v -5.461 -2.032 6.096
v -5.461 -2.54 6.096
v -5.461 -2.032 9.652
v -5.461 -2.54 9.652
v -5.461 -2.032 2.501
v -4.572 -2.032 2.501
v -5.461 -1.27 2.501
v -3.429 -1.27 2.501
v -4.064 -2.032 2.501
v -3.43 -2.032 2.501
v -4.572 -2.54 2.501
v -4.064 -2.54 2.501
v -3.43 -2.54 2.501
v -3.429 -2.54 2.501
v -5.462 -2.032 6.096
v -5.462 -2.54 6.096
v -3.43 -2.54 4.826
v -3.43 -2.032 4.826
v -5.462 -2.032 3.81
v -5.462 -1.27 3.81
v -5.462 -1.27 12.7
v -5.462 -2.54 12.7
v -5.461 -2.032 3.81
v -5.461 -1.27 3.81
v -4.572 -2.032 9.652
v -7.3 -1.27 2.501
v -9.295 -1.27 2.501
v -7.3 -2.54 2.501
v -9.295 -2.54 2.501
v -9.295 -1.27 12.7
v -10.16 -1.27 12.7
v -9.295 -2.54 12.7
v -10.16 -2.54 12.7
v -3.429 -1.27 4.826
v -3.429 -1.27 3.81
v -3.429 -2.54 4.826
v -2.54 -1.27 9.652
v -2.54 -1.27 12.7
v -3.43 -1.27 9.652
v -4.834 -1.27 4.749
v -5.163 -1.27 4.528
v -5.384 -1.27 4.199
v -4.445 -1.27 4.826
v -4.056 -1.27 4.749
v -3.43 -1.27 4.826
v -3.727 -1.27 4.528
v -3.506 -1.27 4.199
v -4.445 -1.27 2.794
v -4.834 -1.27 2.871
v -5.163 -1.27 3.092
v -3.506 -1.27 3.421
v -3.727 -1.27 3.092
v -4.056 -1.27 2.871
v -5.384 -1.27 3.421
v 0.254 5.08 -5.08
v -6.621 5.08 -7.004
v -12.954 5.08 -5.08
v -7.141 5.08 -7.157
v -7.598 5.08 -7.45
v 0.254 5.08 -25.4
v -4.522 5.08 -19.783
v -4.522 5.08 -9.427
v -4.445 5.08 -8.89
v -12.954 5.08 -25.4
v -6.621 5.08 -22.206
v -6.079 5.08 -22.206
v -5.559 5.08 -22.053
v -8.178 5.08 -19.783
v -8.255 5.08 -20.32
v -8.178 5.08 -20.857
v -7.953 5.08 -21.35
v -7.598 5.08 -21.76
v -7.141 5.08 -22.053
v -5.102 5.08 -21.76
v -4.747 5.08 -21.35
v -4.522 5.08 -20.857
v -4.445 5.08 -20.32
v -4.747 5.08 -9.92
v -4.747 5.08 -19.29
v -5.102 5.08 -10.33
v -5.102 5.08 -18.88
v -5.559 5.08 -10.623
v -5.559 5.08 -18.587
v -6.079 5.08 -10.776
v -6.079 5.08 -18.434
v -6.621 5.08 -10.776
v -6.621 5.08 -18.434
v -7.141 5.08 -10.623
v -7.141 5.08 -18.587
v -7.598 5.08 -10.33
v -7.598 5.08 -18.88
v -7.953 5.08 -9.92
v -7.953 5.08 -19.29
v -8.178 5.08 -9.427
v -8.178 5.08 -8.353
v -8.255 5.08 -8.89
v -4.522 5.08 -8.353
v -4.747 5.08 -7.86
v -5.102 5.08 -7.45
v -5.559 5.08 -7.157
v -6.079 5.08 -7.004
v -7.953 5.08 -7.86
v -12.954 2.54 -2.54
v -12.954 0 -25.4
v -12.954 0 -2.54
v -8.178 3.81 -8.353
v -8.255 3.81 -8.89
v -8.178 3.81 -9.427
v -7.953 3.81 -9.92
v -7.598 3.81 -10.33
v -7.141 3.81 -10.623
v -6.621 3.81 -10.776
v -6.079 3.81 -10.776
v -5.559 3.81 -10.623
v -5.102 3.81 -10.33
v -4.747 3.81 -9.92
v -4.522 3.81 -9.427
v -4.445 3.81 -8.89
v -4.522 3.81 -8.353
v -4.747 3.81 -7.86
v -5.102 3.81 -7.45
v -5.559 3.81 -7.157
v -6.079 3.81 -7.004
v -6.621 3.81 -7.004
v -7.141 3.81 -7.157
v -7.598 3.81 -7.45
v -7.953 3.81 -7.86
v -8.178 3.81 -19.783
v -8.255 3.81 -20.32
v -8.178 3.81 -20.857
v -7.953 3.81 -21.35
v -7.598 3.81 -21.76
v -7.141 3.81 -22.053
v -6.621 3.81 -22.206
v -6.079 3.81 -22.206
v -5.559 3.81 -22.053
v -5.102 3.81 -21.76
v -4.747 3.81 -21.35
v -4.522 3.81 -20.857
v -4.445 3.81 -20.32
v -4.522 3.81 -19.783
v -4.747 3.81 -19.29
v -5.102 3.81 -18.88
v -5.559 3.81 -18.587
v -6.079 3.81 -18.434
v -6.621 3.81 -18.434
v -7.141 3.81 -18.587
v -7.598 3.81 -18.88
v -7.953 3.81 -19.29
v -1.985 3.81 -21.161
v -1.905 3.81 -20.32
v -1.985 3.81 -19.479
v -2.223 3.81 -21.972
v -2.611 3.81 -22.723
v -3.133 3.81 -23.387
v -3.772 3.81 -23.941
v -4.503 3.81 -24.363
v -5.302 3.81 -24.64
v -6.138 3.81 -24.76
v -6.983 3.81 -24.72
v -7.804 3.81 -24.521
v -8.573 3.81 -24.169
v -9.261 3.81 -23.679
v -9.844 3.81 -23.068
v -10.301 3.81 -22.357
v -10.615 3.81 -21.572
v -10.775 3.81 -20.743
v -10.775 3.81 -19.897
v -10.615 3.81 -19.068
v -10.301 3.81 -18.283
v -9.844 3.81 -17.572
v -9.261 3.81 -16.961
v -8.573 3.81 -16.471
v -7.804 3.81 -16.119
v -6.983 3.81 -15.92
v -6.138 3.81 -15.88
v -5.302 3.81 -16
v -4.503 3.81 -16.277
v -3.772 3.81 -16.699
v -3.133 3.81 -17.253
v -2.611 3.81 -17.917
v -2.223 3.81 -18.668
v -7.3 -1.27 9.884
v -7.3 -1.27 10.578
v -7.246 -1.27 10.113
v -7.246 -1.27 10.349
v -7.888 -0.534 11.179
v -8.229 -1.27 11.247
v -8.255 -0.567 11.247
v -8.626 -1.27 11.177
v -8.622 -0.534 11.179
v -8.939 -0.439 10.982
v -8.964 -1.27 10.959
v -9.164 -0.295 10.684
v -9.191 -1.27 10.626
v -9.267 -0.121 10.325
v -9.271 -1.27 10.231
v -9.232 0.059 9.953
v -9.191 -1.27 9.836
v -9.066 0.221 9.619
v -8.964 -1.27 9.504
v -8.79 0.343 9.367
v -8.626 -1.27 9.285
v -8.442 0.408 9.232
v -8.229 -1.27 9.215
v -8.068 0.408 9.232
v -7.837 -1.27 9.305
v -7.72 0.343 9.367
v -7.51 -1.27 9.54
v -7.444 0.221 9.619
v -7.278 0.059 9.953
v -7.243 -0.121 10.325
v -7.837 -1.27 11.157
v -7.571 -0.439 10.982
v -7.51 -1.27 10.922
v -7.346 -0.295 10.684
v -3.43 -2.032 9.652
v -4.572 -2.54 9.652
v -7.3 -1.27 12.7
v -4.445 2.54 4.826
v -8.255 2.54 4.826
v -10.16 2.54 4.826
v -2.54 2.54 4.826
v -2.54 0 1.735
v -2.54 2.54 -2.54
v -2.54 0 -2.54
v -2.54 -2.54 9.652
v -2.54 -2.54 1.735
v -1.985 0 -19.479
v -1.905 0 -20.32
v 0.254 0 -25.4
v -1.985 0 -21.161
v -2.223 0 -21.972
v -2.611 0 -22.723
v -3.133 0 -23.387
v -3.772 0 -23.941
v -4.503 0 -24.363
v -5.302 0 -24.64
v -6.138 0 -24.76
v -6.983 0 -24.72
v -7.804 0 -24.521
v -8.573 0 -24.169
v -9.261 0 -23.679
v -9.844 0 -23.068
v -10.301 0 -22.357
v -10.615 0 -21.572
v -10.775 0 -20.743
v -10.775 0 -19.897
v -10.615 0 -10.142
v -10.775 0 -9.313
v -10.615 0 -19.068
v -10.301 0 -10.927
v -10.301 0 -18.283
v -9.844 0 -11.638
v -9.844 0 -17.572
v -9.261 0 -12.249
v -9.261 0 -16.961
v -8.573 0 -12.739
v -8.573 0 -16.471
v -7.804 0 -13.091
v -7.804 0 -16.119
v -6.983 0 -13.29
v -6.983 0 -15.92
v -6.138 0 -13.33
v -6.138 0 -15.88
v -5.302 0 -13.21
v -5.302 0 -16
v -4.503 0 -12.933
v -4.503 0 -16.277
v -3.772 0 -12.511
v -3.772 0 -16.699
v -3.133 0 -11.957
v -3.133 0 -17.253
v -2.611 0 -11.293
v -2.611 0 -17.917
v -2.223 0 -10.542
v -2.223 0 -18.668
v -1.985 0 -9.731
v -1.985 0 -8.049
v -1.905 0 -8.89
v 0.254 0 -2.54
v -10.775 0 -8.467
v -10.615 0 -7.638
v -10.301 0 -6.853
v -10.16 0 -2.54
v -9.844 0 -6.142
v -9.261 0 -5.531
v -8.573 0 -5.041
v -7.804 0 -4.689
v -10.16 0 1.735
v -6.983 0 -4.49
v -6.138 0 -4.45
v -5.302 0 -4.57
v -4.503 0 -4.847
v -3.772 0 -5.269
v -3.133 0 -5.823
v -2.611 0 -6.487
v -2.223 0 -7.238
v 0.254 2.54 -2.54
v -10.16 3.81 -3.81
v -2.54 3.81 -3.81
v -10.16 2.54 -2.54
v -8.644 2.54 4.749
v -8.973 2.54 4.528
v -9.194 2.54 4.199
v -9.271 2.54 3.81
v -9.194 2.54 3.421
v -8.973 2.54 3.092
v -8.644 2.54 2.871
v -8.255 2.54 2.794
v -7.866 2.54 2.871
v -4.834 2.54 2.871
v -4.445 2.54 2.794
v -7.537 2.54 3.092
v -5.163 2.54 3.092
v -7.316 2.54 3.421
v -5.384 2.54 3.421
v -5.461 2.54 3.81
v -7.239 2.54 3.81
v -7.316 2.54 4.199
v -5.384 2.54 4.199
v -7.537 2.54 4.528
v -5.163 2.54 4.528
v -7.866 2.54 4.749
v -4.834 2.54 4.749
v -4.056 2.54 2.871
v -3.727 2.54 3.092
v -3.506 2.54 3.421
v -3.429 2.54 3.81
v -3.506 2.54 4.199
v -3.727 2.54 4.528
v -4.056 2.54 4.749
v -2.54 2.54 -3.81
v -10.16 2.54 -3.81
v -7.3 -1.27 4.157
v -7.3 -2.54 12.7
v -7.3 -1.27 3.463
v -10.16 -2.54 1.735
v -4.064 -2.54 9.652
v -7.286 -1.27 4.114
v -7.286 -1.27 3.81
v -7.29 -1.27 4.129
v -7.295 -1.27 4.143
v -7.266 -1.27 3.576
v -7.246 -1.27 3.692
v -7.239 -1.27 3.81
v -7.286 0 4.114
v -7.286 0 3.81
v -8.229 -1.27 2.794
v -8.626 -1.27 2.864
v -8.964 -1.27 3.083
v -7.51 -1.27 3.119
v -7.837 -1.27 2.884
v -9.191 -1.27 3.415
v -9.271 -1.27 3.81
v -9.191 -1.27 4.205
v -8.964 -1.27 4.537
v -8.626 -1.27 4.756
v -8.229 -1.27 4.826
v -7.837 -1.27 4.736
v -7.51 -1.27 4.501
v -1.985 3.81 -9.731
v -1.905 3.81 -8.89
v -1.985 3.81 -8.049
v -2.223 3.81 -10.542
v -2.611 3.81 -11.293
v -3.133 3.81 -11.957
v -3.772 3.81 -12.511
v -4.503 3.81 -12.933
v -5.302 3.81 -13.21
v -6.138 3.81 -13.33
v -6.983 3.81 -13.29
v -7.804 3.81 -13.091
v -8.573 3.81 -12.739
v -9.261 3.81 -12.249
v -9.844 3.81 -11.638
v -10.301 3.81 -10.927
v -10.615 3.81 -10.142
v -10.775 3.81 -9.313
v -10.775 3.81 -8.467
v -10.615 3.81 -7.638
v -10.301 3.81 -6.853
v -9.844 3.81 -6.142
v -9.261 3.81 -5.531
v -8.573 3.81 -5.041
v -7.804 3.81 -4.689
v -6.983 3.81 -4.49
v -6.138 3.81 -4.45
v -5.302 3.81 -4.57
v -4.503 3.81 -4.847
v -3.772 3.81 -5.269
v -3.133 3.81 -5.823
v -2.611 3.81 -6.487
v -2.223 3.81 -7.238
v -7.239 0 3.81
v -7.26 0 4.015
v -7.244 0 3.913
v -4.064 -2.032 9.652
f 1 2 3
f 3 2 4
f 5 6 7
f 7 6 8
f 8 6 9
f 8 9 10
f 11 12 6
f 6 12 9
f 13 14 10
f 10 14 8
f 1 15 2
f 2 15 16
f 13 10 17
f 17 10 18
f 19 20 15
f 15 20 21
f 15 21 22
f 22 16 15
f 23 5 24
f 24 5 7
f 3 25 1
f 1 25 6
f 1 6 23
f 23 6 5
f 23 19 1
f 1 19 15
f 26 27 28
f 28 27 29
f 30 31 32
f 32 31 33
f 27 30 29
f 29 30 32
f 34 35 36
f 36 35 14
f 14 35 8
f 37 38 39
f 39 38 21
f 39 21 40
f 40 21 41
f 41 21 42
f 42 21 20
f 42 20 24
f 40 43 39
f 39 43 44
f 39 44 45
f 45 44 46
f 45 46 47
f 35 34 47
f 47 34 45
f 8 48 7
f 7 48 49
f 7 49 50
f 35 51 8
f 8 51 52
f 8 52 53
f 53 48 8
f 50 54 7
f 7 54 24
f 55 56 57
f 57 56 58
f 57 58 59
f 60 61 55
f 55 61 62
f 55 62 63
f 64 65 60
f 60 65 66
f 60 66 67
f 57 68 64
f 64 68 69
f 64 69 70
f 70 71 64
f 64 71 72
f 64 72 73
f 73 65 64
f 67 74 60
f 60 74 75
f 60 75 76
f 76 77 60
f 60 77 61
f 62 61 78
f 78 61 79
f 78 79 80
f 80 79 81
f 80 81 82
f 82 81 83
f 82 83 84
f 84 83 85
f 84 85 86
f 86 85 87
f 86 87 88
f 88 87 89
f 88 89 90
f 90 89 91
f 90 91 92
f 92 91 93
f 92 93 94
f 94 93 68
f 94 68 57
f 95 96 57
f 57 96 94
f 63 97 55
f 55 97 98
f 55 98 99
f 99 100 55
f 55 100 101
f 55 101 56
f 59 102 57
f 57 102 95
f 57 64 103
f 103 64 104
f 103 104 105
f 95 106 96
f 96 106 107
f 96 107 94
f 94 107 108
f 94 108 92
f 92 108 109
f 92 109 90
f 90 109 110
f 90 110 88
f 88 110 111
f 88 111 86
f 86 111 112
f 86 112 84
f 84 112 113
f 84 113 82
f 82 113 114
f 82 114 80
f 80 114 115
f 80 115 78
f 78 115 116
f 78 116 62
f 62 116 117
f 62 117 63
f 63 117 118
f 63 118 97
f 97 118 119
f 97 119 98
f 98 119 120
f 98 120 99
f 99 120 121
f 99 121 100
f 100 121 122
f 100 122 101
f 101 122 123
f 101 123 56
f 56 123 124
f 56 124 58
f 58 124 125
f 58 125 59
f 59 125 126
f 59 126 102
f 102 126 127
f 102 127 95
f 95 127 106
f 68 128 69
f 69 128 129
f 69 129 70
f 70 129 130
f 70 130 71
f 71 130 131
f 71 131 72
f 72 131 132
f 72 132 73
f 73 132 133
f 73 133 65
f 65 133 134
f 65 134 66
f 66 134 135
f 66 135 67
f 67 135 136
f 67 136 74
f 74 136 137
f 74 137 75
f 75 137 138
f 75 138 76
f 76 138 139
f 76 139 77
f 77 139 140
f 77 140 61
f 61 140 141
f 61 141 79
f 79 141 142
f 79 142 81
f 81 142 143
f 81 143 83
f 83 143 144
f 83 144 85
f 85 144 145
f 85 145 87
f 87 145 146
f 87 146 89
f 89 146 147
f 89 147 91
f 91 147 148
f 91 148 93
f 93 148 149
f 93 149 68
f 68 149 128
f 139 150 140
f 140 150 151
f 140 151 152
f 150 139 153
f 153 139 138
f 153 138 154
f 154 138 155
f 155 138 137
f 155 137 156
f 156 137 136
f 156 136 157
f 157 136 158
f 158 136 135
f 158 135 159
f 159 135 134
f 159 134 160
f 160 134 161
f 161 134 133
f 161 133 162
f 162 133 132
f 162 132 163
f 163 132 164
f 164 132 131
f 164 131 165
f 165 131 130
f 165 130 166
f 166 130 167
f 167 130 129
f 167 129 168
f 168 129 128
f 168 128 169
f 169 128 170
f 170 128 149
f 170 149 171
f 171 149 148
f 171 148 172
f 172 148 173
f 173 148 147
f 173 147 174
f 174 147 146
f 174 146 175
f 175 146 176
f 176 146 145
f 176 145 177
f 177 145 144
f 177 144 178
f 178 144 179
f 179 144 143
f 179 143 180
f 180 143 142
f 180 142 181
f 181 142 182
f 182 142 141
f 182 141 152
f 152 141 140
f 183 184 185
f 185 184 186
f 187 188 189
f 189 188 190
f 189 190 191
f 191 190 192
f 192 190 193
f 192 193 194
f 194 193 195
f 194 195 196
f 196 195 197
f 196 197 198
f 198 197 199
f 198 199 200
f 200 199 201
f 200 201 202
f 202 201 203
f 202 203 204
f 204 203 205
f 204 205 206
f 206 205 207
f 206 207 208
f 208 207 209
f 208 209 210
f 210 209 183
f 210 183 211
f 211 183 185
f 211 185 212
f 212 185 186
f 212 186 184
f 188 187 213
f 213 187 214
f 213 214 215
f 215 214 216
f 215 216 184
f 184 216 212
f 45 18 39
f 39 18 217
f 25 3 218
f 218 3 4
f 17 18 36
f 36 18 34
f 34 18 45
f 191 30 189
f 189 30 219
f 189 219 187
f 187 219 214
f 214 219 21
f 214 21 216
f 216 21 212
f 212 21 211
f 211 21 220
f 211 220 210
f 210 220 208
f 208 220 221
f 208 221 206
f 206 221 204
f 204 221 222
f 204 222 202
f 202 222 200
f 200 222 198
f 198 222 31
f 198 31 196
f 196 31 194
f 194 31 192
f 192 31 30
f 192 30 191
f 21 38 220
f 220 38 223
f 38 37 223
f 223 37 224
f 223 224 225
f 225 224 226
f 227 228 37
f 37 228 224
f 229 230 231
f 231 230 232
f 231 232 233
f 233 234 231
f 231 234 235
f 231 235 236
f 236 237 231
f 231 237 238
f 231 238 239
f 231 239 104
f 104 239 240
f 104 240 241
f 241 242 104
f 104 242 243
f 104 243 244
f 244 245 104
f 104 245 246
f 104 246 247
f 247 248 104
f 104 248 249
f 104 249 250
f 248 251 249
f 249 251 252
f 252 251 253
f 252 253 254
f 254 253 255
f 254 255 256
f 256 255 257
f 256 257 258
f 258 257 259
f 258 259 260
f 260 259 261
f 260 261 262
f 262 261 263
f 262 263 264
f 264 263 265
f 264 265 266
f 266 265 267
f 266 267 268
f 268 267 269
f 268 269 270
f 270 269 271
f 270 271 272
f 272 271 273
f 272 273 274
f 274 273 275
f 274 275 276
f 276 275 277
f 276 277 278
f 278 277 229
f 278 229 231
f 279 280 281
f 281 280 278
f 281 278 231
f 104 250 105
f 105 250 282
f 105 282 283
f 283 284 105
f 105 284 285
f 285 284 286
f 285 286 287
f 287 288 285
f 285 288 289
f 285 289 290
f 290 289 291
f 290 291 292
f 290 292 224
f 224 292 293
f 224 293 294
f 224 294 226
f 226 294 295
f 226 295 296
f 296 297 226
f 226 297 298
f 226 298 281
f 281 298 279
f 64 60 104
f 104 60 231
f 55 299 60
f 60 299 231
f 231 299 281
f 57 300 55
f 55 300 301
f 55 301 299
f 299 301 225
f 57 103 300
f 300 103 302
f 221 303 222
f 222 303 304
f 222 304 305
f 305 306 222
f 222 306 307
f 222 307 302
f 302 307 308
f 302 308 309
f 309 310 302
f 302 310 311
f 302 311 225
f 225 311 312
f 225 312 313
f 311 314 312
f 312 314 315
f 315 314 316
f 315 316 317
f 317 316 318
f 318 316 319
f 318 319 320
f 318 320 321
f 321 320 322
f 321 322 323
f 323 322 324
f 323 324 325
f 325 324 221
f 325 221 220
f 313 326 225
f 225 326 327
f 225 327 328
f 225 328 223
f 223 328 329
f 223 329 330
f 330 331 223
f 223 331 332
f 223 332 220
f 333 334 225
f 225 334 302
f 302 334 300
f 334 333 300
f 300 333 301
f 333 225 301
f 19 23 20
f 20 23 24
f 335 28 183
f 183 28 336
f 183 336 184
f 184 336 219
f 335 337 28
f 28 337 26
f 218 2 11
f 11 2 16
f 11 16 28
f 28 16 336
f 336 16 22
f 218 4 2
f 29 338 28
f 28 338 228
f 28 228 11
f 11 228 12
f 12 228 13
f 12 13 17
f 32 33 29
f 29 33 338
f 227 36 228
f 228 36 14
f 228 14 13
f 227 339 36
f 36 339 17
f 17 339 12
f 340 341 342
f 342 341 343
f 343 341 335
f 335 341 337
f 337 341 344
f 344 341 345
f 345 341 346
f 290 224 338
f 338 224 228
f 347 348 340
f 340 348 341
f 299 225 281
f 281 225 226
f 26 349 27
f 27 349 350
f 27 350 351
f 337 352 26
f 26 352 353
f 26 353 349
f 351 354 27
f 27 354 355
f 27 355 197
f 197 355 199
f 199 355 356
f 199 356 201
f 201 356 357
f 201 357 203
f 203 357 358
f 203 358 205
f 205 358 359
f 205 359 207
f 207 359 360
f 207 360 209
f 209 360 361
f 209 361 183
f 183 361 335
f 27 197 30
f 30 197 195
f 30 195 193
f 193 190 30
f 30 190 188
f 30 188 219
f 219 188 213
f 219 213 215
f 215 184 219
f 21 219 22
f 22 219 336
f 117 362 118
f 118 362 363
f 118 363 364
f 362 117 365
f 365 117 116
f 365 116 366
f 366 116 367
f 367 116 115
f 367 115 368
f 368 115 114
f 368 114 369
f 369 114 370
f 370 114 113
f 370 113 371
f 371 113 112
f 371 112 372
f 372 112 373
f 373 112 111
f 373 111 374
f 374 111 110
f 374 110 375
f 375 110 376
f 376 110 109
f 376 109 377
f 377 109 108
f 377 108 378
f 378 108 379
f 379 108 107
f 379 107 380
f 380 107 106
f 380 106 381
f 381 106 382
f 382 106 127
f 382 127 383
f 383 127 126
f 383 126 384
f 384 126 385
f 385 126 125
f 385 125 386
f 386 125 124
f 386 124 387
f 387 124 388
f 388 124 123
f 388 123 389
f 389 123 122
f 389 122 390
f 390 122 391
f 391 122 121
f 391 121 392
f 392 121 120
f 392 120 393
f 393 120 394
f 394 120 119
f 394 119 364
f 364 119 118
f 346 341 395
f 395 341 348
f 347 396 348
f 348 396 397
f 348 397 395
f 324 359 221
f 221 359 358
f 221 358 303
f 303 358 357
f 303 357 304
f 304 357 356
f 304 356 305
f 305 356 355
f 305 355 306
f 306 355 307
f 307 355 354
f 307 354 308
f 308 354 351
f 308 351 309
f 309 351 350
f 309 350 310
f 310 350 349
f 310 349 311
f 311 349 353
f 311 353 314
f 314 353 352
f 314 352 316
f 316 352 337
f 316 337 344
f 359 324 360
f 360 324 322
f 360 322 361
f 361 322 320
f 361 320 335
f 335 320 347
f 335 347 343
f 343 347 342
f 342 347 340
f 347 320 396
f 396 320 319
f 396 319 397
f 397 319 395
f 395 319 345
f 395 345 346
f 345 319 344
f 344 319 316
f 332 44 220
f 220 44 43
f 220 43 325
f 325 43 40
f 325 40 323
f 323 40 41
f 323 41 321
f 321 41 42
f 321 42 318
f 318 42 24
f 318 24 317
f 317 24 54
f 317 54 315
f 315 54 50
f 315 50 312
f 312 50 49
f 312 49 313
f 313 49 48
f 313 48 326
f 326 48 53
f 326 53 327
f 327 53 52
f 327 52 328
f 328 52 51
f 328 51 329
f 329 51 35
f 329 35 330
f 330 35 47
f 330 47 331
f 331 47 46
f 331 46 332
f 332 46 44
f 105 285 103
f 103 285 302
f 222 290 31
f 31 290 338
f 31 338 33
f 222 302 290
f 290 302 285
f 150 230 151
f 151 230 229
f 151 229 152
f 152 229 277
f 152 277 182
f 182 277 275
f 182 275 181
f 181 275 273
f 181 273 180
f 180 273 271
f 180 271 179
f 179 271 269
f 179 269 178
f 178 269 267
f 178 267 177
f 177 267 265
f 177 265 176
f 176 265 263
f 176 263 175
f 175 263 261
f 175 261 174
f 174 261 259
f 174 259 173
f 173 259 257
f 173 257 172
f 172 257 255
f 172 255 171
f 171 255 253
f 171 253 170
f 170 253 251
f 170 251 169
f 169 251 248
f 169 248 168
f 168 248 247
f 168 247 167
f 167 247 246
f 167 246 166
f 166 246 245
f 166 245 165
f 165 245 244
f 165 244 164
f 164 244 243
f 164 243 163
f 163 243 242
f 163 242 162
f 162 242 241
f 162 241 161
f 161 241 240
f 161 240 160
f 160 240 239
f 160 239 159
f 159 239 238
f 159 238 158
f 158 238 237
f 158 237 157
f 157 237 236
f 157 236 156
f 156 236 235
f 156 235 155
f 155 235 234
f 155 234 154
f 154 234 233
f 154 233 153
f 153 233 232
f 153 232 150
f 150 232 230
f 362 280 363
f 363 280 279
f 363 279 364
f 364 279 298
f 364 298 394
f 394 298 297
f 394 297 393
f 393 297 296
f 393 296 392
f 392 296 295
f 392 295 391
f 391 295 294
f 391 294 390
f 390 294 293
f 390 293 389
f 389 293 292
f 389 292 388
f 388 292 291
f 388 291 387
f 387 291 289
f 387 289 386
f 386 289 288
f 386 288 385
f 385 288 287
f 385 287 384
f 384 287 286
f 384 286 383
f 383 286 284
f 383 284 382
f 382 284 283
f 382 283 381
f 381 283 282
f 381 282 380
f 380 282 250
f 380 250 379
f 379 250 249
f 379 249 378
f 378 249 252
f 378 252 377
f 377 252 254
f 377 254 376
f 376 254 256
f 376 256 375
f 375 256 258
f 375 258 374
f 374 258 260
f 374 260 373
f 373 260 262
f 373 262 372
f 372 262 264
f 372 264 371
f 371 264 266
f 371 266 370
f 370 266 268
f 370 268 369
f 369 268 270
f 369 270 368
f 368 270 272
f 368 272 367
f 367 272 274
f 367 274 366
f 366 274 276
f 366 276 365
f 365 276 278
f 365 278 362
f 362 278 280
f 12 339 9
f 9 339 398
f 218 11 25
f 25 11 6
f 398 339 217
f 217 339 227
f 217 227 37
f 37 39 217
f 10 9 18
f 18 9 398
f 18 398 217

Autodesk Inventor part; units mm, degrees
ref_plane "YZ Plane" through (0, 0, 0) normal (1, 0, 0) x (0, 1, 0)
ref_plane "XZ Plane" through (0, 0, 0) normal (0, 1, 0) x (-1, 0, 0)
ref_plane "XY Plane" through (0, 0, 0) normal (0, 0, 1) x (1, 0, 0)
sketch "Sketch1" plane through (0, 0, 0) normal (0, 1, 0) x (-1, 0, 0)
  line L0 (0, 0) -> (12.7, 0)
  line L1 (12.7, 0) -> (12.7, -25.4)
  line L2 (12.7, -25.4) -> (0, -25.4)
  line L3 (0, -25.4) -> (0, 0)
  dimension "d0" = 12.7
  dimension "d1" = 25.4
sketch "Sketch1 outline for Extrusion1" plane through (0, 0, 0) normal (0, 1, 0) x (-1, 0, 0)
  line L0 (0, 0) -> (0, -25.4)
  line L1 (12.7, 0) -> (0, 0)
  line L2 (12.7, -25.4) -> (12.7, 0)
  line L3 (0, -25.4) -> (12.7, -25.4)
extrude "Extrusion1" add sketch "Sketch1 outline for Extrusion1" along normal blind 7.62
sketch "Sketch2" plane through (0, 0, 0) normal (1, 0, 0) x (0, 0, -1)
  line L0 (25.4, 7.62) -> (0, 7.62) projected
  line L1 (25.4, 0) -> (0, 0) projected
  line L2 (0, 7.62) -> (7.62, 7.62)
  line L3 (7.62, 7.62) -> (7.62, 0)
  line L4 (7.62, 0) -> (0, 0)
  line L5 (0, 0) -> (0, 7.62)
  line L6 (0, 0) -> (7.62, 7.62)
  dimension "d4" = 7.62
sketch "Sketch2 outline for Extrusion2" plane through (0, 0, 0) normal (1, 0, 0) x (0, 0, -1)
  line L0 (0, 7.62) -> (0, 0)
  line L1 (7.62, 7.62) -> (0, 7.62)
  line L2 (0, 0) -> (7.62, 7.62)
extrude "Extrusion2" cut sketch "Sketch2 outline for Extrusion2" against normal blind 25.4
sketch "Sketch3" plane through (0, 0, 0) normal (0, -1, 0) x (1, 0, 0)
  line L0 (-12.7, -25.4) -> (-12.7, 0) projected
  line L1 (0, 0) -> (-12.7, 0)
  line L2 (-12.7, 0) -> (-12.7, -8.89)
  line L3 (-12.7, -8.89) -> (0, -8.89)
  line L4 (0, -8.89) -> (0, 0)
  circle A0 centre (-6.35, -8.89) radius 4.445
  dimension "d7" = 8.89
  dimension "d8" = 8.89
sketch "Sketch3 outline for Extrusion3" plane through (0, 0, 0) normal (0, -1, 0) x (1, 0, 0)
  circle A0 centre (-6.35, -8.89) radius 4.445
extrude "Extrusion3" cut sketch "Sketch3 outline for Extrusion3" against normal blind 3.81
sketch "Sketch4" plane through (0, 0, 0) normal (0, -1, 0) x (1, 0, 0)
  circle A0 centre (-6.35, -8.89) radius 4.445 projected
  line L0 (-6.35, -8.89) -> (-6.35, -20.32)
  circle A1 centre (-6.35, -20.32) radius 4.445
  point P0 (0, 0)
  dimension "d11" = 11.43
  dimension "d12" = 8.89
sketch "Sketch4 outline for Extrusion4" plane through (0, 0, 0) normal (0, -1, 0) x (1, 0, 0)
  circle A0 centre (-6.35, -20.32) radius 4.445
extrude "Extrusion4" cut sketch "Sketch4 outline for Extrusion4" against normal blind 2.54
sketch "Sketch6" plane through (0, 0, -25.4) normal (1, 0, 0) x (0, 0, -1)
  line L0 (-25.4, 0) -> (-22.86, 0)
  line L1 (-22.86, 0) -> (-22.86, 2.54)
  line L2 (-22.86, 2.54) -> (-25.4, 2.54)
  line L3 (-25.4, 2.54) -> (-25.4, 0)
  dimension "d18" = 2.54
  dimension "d19" = 2.54
sketch "Sketch6 outline for Extrusion6" plane through (0, 0, -25.4) normal (1, 0, 0) x (0, 0, -1)
  line L0 (-25.4, 0) -> (-22.86, 0)
  line L1 (-25.4, 2.54) -> (-25.4, 0)
  line L2 (-22.86, 2.54) -> (-25.4, 2.54)
  line L3 (-22.86, 0) -> (-22.86, 2.54)
extrude "Extrusion6" cut sketch "Sketch6 outline for Extrusion6" against normal blind 25.4
sketch "Sketch7" plane through (0, 0, -2.54) normal (0, 0, 1) x (1, 0, 0)
  line L0 (-12.7, 0) -> (-12.7, 2.54) projected
  line L1 (0, 0) -> (-12.7, 0) projected
  line L2 (0, 2.54) -> (0, 0) projected
  line L3 (-12.7, 2.54) -> (0, 2.54) projected
sketch "Sketch7 outline for Extrusion7" plane through (0, 0, -2.54) normal (0, 0, 1) x (1, 0, 0)
  line L0 (-12.7, 0) -> (0, 0)
  line L1 (-12.7, 2.54) -> (-12.7, 0)
  line L2 (0, 2.54) -> (-12.7, 2.54)
  line L3 (0, 0) -> (0, 2.54)
extrude "Extrusion7" add sketch "Sketch7 outline for Extrusion7" along normal blind 12.7
sketch "Sketch13" plane through (0, 0, 0) normal (0, -1, 0) x (1, 0, 0)
  line L0 (-12.7, -2.54) -> (-12.7, -7.62) projected
  line L1 (0, -2.54) -> (0, 10.16) projected
  line L2 (-12.7, -2.54) -> (0, -2.54)
  line L3 (0, -2.54) -> (0, 10.16)
  line L4 (0, 10.16) -> (-12.7, 10.16)
  line L5 (-12.7, 10.16) -> (-12.7, -2.54)
  line L6 (0, -7.62) -> (0, -2.54) projected
  line L7 (-12.7, 10.16) -> (0, 10.16) projected
  line L8 (0, -2.54) -> (-2.54, -2.54)
  line L9 (-2.54, -2.54) -> (-2.54, 10.16)
  line L10 (-2.54, 10.16) -> (0, 10.16)
  line L11 (0, 10.16) -> (0, -2.54)
  line L12 (-12.7, -2.54) -> (-10.16, -2.54)
  line L13 (-10.16, -2.54) -> (-10.16, 10.16)
  line L14 (-10.16, 10.16) -> (-12.7, 10.16)
  line L15 (-12.7, 10.16) -> (-12.7, -2.54)
  point P0 (0, 0)
  dimension "d43" = 2.54
  dimension "d44" = 2.54
sketch "Sketch13 outline for Extrusion13" plane through (0, 0, 0) normal (0, -1, 0) x (1, 0, 0)
  line L0 (-10.16, -2.54) -> (-10.16, 10.16)
  line L1 (-12.7, -2.54) -> (-10.16, -2.54)
  line L2 (-12.7, 10.16) -> (-12.7, -2.54)
  line L3 (-10.16, 10.16) -> (-12.7, 10.16)
  line L4 (-2.54, 10.16) -> (-2.54, -2.54)
  line L5 (0, 10.16) -> (-2.54, 10.16)
  line L6 (0, -2.54) -> (0, 10.16)
  line L7 (-2.54, -2.54) -> (0, -2.54)
extrude "Extrusion13" cut sketch "Sketch13 outline for Extrusion13" against normal blind 2.54
sketch "Sketch18" plane through (0, 0, 0) normal (0, -1, 0) x (1, 0, 0)
  line L0 (-2.54, 10.16) -> (-10.16, 10.16) projected
  line L1 (-10.16, -2.54) -> (-10.16, 10.16) projected
  line L2 (-2.54, 10.16) -> (-10.16, 10.16)
  line L3 (-10.16, 10.16) -> (-10.16, 2.54)
  line L4 (-10.16, 2.54) -> (-2.54, 2.54)
  line L5 (-2.54, 2.54) -> (-2.54, 10.16)
  line L6 (-10.16, -2.54) -> (-2.54, -2.54) projected
  line L7 (-6.35, -2.54) -> (-6.35, 10.16)
  line L8 (-6.35, -2.54) -> (-2.54, -2.54)
  line L9 (-2.54, -2.54) -> (-4.445, -2.54)
  line L10 (-4.445, 10.16) -> (-4.445, -2.54)
  line L11 (-10.16, -2.54) -> (-6.35, -2.54)
  line L12 (-8.255, -2.54) -> (-8.255, 10.16)
  circle A0 centre (-4.445, 3.81) radius 1.016
  circle A1 centre (-8.255, 3.81) radius 1.016
  point P0 (0, 0)
  dimension "d63" = 7.62
  dimension "d64" = 2.032
  dimension "d65" = 2.032
sketch "Sketch18 outline for Extrusion18" plane through (0, 0, 0) normal (0, -1, 0) x (1, 0, 0)
  circle A0 centre (-8.255, 3.81) radius 1.016
  circle A1 centre (-4.445, 3.81) radius 1.016
extrude "Extrusion18" cut sketch "Sketch18 outline for Extrusion18" against normal blind 25.4
sketch "Sketch19" plane through (0, 0, 0) normal (0, -1, 0) x (1, 0, 0)
  circle A0 centre (-4.445, 3.81) radius 1.016
  line L0 (-2.54, 10.16) -> (-10.16, 10.16)
  line L1 (-5.461, 3.81) -> (-7.285663, 3.81)
  line L2 (-7.285663, 3.81) -> (-7.285663, 10.16)
  line L3 (-7.285663, 10.16) -> (-5.461, 10.16)
  line L4 (-5.461, 10.16) -> (-5.461, 3.81)
  point P0 (0, 0)
sketch "Sketch19 outline for Extrusion19" plane through (0, 0, 0) normal (0, -1, 0) x (1, 0, 0)
  line L0 (-5.461, 3.81) -> (-5.461, 10.16)
  line L1 (-7.285663, 3.81) -> (-5.461, 3.81)
  line L2 (-7.285663, 10.16) -> (-7.285663, 3.81)
  line L3 (-5.461, 10.16) -> (-7.285663, 10.16)
extrude "Extrusion19" add sketch "Sketch19 outline for Extrusion19" along normal blind 2.54
sketch "Sketch20" plane through (0, 0, 0) normal (0, -1, 0) x (1, 0, 0)
  line L0 (-5.461, 3.81) -> (-7.239, 3.81) projected
  line L1 (-5.461, 3.81) -> (-7.239, 3.81)
  line L2 (-7.239, 3.81) -> (-7.239, 2.54)
  line L3 (-7.239, 2.54) -> (-5.461, 2.54)
  line L4 (-5.461, 2.54) -> (-5.461, 3.81)
  point P0 (0, 0)
  dimension "d70" = 1.27
sketch "Sketch20 outline for Extrusion20" plane through (0, 0, 0) normal (0, -1, 0) x (1, 0, 0)
  line L0 (-5.461, 2.54) -> (-5.461, 3.81)
  line L1 (-7.239, 2.54) -> (-5.461, 2.54)
  line L2 (-7.239, 3.81) -> (-7.239, 2.54)
  line L3 (-5.461, 3.81) -> (-7.239, 3.81)
extrude "Extrusion20" add sketch "Sketch20 outline for Extrusion20" along normal blind 2.54
sketch "Sketch21" plane through (-10.16, 2.54, 10.16) normal (0, 1, 0) x (1, 0, 0)
  circle A0 centre (1.905, 6.35) radius 1.016 projected
  circle A1 centre (5.715, 6.35) radius 1.016 projected
  line L0 (0, 12.7) -> (0, 0) projected
  line L1 (7.62, 0) -> (0, 0) projected
  line L2 (7.62, 0) -> (7.62, 12.7) projected
  line L3 (0, 12.7) -> (7.62, 12.7) projected
  point P0 (10.16, 10.16)
sketch "Sketch21 outline for Extrusion21" plane through (-10.16, 2.54, 10.16) normal (0, 1, 0) x (1, 0, 0)
  line L0 (7.62, 0) -> (7.62, 12.7)
  line L1 (0, 0) -> (7.62, 0)
  line L2 (7.62, 12.7) -> (0, 12.7)
  line L3 (0, 12.7) -> (0, 0)
  circle A0 centre (1.905, 6.35) radius 1.016
  circle A1 centre (5.715, 6.35) radius 1.016
extrude "Extrusion21" add sketch "Sketch21 outline for Extrusion21" along normal blind 1.27
sketch "Sketch22" plane through (-2.54, 2.54, -2.54) normal (0, 0, -1) x (-1, 0, 0)
  line L0 (7.62, 0) -> (0, 0) projected
  line L1 (7.62, 0) -> (7.62, 1.27) projected
  line L2 (0, 1.27) -> (7.62, 1.27) projected
  line L3 (0, 0) -> (0, 1.27) projected
  point P0 (-2.54, -2.54)
sketch "Sketch22 outline for Extrusion22" plane through (-2.54, 2.54, -2.54) normal (0, 0, -1) x (-1, 0, 0)
  line L0 (7.62, 0) -> (7.62, 1.27)
  line L1 (0, 0) -> (7.62, 0)
  line L2 (0, 1.27) -> (0, 0)
  line L3 (7.62, 1.27) -> (0, 1.27)
extrude "Extrusion22" add sketch "Sketch22 outline for Extrusion22" along normal blind 5.08
sketch "Sketch23" plane through (-6.35, 2.54, -8.89) normal (0, -1, 0) x (1, 0, 0)
  circle A0 centre (0, 0) radius 4.445
  point P0 (6.35, 8.89)
sketch "Sketch23 outline for Extrusion23" plane through (-6.35, 2.54, -8.89) normal (0, -1, 0) x (1, 0, 0)
  circle A0 centre (0, 0) radius 4.445
extrude "Extrusion23" cut sketch "Sketch23 outline for Extrusion23" against normal blind 1.27
sketch "Sketch24" plane through (-10.16, 3.81, 10.16) normal (0, 1, 0) x (1, 0, 0)
  line L0 (0, 0) -> (0, 13.97) projected
  line L1 (0, 0) -> (7.62, 0) projected
  line L2 (7.62, 0) -> (7.62, 13.97) projected
  line L3 (0, 13.97) -> (7.62, 13.97) projected
  circle A0 centre (5.715, 6.35) radius 1.016 projected
  circle A1 centre (1.905, 6.35) radius 1.016 projected
  point P0 (10.16, 10.16)
sketch "Sketch24 outline for Extrusion24" plane through (-10.16, 3.81, 10.16) normal (0, 1, 0) x (1, 0, 0)
  line L0 (7.62, 0) -> (7.62, 13.97)
  line L1 (0, 0) -> (7.62, 0)
  line L2 (7.62, 13.97) -> (0, 13.97)
  line L3 (0, 13.97) -> (0, 0)
  circle A0 centre (1.905, 6.35) radius 1.016
  circle A1 centre (5.715, 6.35) radius 1.016
extrude "Extrusion24" cut sketch "Sketch24 outline for Extrusion24" against normal blind 2.54
sketch "Sketch26" plane through (0, 0, 10.16) normal (0, 0, 1) x (1, 0, 0)
  line L0 (-2.54, 1.27) -> (-10.16, 1.27)
  line L1 (-10.16, 0) -> (-10.16, 1.27)
  line L2 (-10.16, 0) -> (-7.285663, 0)
  line L3 (-7.285663, 0) -> (-7.285663, -2.54)
  line L4 (-5.461, -2.54) -> (-7.285663, -2.54)
  line L5 (-5.461, 0) -> (-5.461, -2.54)
  line L6 (-5.461, 0) -> (-2.54, 0)
  line L7 (-2.54, 0) -> (-2.54, 1.27)
  point P0 (0, 0)
sketch "Sketch26 outline for Extrusion26" plane through (0, 0, 10.16) normal (0, 0, 1) x (1, 0, 0)
  line L0 (-5.461, 0) -> (-2.54, 0)
  line L1 (-5.461, -2.54) -> (-5.461, 0)
  line L2 (-7.285663, -2.54) -> (-5.461, -2.54)
  line L3 (-7.285663, 0) -> (-7.285663, -2.54)
  line L4 (-10.16, 0) -> (-7.285663, 0)
  line L5 (-10.16, 1.27) -> (-10.16, 0)
  line L6 (-2.54, 1.27) -> (-10.16, 1.27)
  line L7 (-2.54, 0) -> (-2.54, 1.27)
extrude "Extrusion26" add sketch "Sketch26 outline for Extrusion26" along normal blind 2.54
sketch "Sketch27" plane through (0, 0, -25.4) normal (1, 0, 0) x (0, 0, -1)
  line L0 (-22.86, 2.54) -> (-22.86, 0) projected
  line L1 (-22.86, 0) -> (0, 0) projected
  line L2 (0, 0) -> (0, 7.62) projected
  line L3 (-17.78, 7.62) -> (0, 7.62) projected
  line L4 (-17.78, 7.62) -> (-22.86, 2.54) projected
  point P0 (-25.4, 0)
sketch "Sketch27 outline for Extrusion27" plane through (0, 0, -25.4) normal (1, 0, 0) x (0, 0, -1)
  line L0 (-17.78, 7.62) -> (-22.86, 2.54)
  line L1 (0, 7.62) -> (-17.78, 7.62)
  line L2 (0, 0) -> (0, 7.62)
  line L3 (-22.86, 0) -> (0, 0)
  line L4 (-22.86, 2.54) -> (-22.86, 0)
extrude "Extrusion27" add sketch "Sketch27 outline for Extrusion27" along normal blind 1.27
sketch "Sketch28" plane through (-12.7, 0, -25.4) normal (-1, 0, 0) x (0, 0, 1)
  line L0 (0, 7.62) -> (17.78, 7.62) projected
  line L1 (0, 0) -> (0, 7.62) projected
  line L2 (0, 0) -> (22.86, 0) projected
  line L3 (22.86, 0) -> (22.86, 2.54) projected
  line L4 (22.86, 2.54) -> (17.78, 7.62) projected
  point P0 (25.4, 0)
sketch "Sketch28 outline for Extrusion28" plane through (-12.7, 0, -25.4) normal (-1, 0, 0) x (0, 0, 1)
  line L0 (0, 0) -> (22.86, 0)
  line L1 (0, 7.62) -> (0, 0)
  line L2 (17.78, 7.62) -> (0, 7.62)
  line L3 (22.86, 2.54) -> (17.78, 7.62)
  line L4 (22.86, 0) -> (22.86, 2.54)
extrude "Extrusion28" add sketch "Sketch28 outline for Extrusion28" along normal blind 1.27
sketch "Sketch29" plane through (0, -2.54, 0) normal (0, -1, 0) x (1, 0, 0)
  line L0 (-7.285663, 3.81) -> (-7.285663, 12.7)
  line L1 (-7.285663, 3.81) -> (-7.239, 3.81)
  line L2 (-7.239, 3.81) -> (-7.239, 2.54)
  line L3 (-7.239, 2.54) -> (-5.461, 2.54)
  line L4 (-5.461, 2.54) -> (-5.461, 12.7)
  line L5 (-7.285663, 12.7) -> (-5.461, 12.7)
  point P0 (0, 0)
sketch "Sketch29 outline for Extrusion29" plane through (0, -2.54, 0) normal (0, -1, 0) x (1, 0, 0)
  line L0 (-7.239, 3.81) -> (-7.239, 2.54)
  line L1 (-7.285663, 3.81) -> (-7.239, 3.81)
  line L2 (-7.285663, 12.7) -> (-7.285663, 3.81)
  line L3 (-5.461, 12.7) -> (-7.285663, 12.7)
  line L4 (-5.461, 2.54) -> (-5.461, 12.7)
  line L5 (-7.239, 2.54) -> (-5.461, 2.54)
extrude "Extrusion29" cut sketch "Sketch29 outline for Extrusion29" against normal blind 1.27
sketch "Sketch31" plane through (0, 7.62, 0) normal (0, 1, 0) x (1, 0, 0)
  point P0 (0, 0)
sketch "Sketch32" plane through (0, 7.62, 0) normal (0, 1, 0) x (1, 0, 0)
  point P0 (0, 0)
sketch "Sketch33" plane through (0, 7.62, 0) normal (0, 1, 0) x (1, 0, 0)
  line L0 (-13.97, 7.62) -> (1.27, 7.62) projected
  line L1 (1.27, 25.4) -> (1.27, 7.62) projected
  line L2 (-13.97, 25.4) -> (1.27, 25.4) projected
  line L3 (-13.97, 7.62) -> (-13.97, 25.4) projected
  point P0 (0, 0)
sketch "Sketch33 outline for Extrusion30" plane through (0, 7.62, 0) normal (0, 1, 0) x (1, 0, 0)
  line L0 (-13.97, 25.4) -> (-13.97, 7.62)
  line L1 (1.27, 25.4) -> (-13.97, 25.4)
  line L2 (1.27, 7.62) -> (1.27, 25.4)
  line L3 (-13.97, 7.62) -> (1.27, 7.62)
extrude "Extrusion30" add sketch "Sketch33 outline for Extrusion30" along normal blind 5.08
sketch "Sketch35" plane through (1.27, 0, -25.4) normal (1, 0, 0) x (0, 0, -1)
  point P0 (-25.4, 0)
sketch "Sketch36" plane through (1.27, 0, -25.4) normal (1, 0, 0) x (0, 0, -1)
  line L0 (-22.86, 2.54) -> (-22.86, 0) projected
  line L1 (-22.86, 0) -> (0, 0) projected
  line L2 (0, 0) -> (0, 12.7) projected
  line L3 (-17.78, 12.7) -> (0, 12.7) projected
  line L4 (-17.78, 7.62) -> (-17.78, 12.7) projected
  line L5 (-17.78, 7.62) -> (-22.86, 2.54) projected
  point P0 (-25.4, 0)
sketch "Sketch36 outline for Extrusion33" plane through (1.27, 0, -25.4) normal (1, 0, 0) x (0, 0, -1)
  line L0 (-17.78, 7.62) -> (-22.86, 2.54)
  line L1 (-17.78, 12.7) -> (-17.78, 7.62)
  line L2 (0, 12.7) -> (-17.78, 12.7)
  line L3 (0, 0) -> (0, 12.7)
  line L4 (-22.86, 0) -> (0, 0)
  line L5 (-22.86, 2.54) -> (-22.86, 0)
extrude "Extrusion33" cut sketch "Sketch36 outline for Extrusion33" against normal blind 0.254
sketch "Sketch37" plane through (-13.97, 0, -25.4) normal (-1, 0, 0) x (0, 0, 1)
  line L0 (22.86, 0) -> (22.86, 2.54) projected
  line L1 (22.86, 2.54) -> (17.78, 7.62) projected
  line L2 (17.78, 7.62) -> (17.78, 12.7) projected
  line L3 (0, 12.7) -> (17.78, 12.7) projected
  line L4 (0, 0) -> (0, 12.7) projected
  line L5 (0, 0) -> (22.86, 0) projected
  point P0 (25.4, 0)
sketch "Sketch37 outline for Extrusion34" plane through (-13.97, 0, -25.4) normal (-1, 0, 0) x (0, 0, 1)
  line L0 (0, 0) -> (22.86, 0)
  line L1 (0, 12.7) -> (0, 0)
  line L2 (17.78, 12.7) -> (0, 12.7)
  line L3 (17.78, 7.62) -> (17.78, 12.7)
  line L4 (22.86, 2.54) -> (17.78, 7.62)
  line L5 (22.86, 0) -> (22.86, 2.54)
extrude "Extrusion34" cut sketch "Sketch37 outline for Extrusion34" against normal blind 0.254
sketch "Sketch38" plane through (0, 0, 0) normal (0, -1, 0) x (1, 0, 0)
  line L0 (-10.16, -2.54) -> (-10.16, 12.7)
  line L1 (-2.54, -2.54) -> (-2.54, 12.7)
  line L2 (-10.16, 12.7) -> (-2.54, 12.7)
  line L3 (-2.54, 12.7) -> (-2.54, 1.734585)
  line L4 (-2.54, 1.734585) -> (-10.16, 1.734585)
  line L5 (-10.16, 1.734585) -> (-10.16, 12.7)
  circle A0 centre (-6.35, -8.89) radius 4.445
  circle A1 centre (-6.35, -20.32) radius 4.445
  line L6 (-13.716, -2.54) -> (-13.716, -25.4)
  line L7 (1.016, -25.4) -> (-13.716, -25.4)
  line L8 (1.016, -25.4) -> (1.016, -2.54)
  line L9 (1.016, -2.54) -> (-2.54, -2.54)
  line L10 (-2.54, -2.54) -> (-2.54, 12.7)
  line L11 (-5.461, 12.7) -> (-2.54, 12.7)
  line L12 (-5.461, 12.7) -> (-5.461, 3.81)
  circle A2 centre (-4.445, 3.81) radius 1.016
  line L13 (-5.461, 3.81) -> (-5.461, 2.54)
  line L14 (-5.461, 2.54) -> (-7.239, 2.54)
  line L15 (-7.239, 2.54) -> (-7.239, 3.81)
  arc A3 (-7.285663, 4.114372) -> (-7.239, 3.81) centre (-8.255, 3.81) ccw
  line L16 (-7.285663, 4.114372) -> (-7.285663, 12.7)
  line L17 (-10.16, 12.7) -> (-7.285663, 12.7)
  line L18 (-10.16, 12.7) -> (-10.16, -2.54)
  line L19 (-10.16, -2.54) -> (-13.716, -2.54)
  point P0 (0, 0)
sketch "Sketch38 outline for Extrusion35" plane through (0, 0, 0) normal (0, -1, 0) x (1, 0, 0)
  line L0 (-5.461, 2.54) -> (-7.239, 2.54)
  line L1 (-5.461, 3.81) -> (-5.461, 2.54)
  line L2 (-5.461, 12.7) -> (-5.461, 3.81)
  line L3 (-2.54, 12.7) -> (-5.461, 12.7)
  line L4 (-2.54, 1.734585) -> (-2.54, 12.7)
  line L5 (-10.16, 1.734585) -> (-2.54, 1.734585)
  line L6 (-10.16, 12.7) -> (-10.16, 1.734585)
  line L7 (-7.285663, 12.7) -> (-10.16, 12.7)
  line L8 (-7.285663, 4.114372) -> (-7.285663, 12.7)
  arc A0 (-7.239, 3.81) -> (-7.285663, 4.114372) centre (-8.255, 3.81) cw
  line L9 (-7.239, 2.54) -> (-7.239, 3.81)
  arc A1 (-5.461, 3.81) -> (-3.429, 3.81) centre (-4.445, 3.81) ccw
  arc A2 (-3.429, 3.81) -> (-5.461, 3.81) centre (-4.445, 3.81) ccw
extrude "Extrusion35" add sketch "Sketch38 outline for Extrusion35" along normal blind 1.27
sketch "Sketch39" plane through (0, -1.27, 0) normal (0, -1, 0) x (1, 0, 0)
  line L0 (-2.54, 12.7) -> (-10.16, 12.7)
  line L1 (-5.462315, 3.81) -> (-7.300103, 3.81)
  line L2 (-7.300103, 3.81) -> (-7.300103, 12.7)
  line L3 (-7.300103, 12.7) -> (-5.462315, 12.7)
  line L4 (-5.462315, 12.7) -> (-5.462315, 3.81)
  point P0 (0, 0)
sketch "Sketch39 outline for Extrusion36" plane through (0, -1.27, 0) normal (0, -1, 0) x (1, 0, 0)
  line L0 (-7.300103, 3.81) -> (-5.462315, 3.81)
  line L1 (-7.300103, 12.7) -> (-7.300103, 3.81)
  line L2 (-5.462315, 12.7) -> (-7.300103, 12.7)
  line L3 (-5.462315, 3.81) -> (-5.462315, 12.7)
extrude "Extrusion36" add sketch "Sketch39 outline for Extrusion36" along normal blind 1.27
sketch "Sketch40" plane through (0, -1.27, 0) normal (0, -1, 0) x (1, 0, 0)
  circle A0 centre (-4.445, 3.81) radius 1.016
  line L0 (-5.461, 3.81) -> (-7.300103, 3.81)
  line L1 (-7.300103, 3.81) -> (-7.300103, 2.501434)
  line L2 (-7.300103, 2.501434) -> (-5.461, 2.501434)
  line L3 (-5.461, 2.501434) -> (-5.461, 3.81)
  point P0 (0, 0)
sketch "Sketch40 outline for Extrusion37" plane through (0, -1.27, 0) normal (0, -1, 0) x (1, 0, 0)
  line L0 (-7.300103, 2.501434) -> (-5.461, 2.501434)
  line L1 (-7.300103, 3.81) -> (-7.300103, 2.501434)
  line L2 (-5.461, 3.81) -> (-7.300103, 3.81)
  line L3 (-5.461, 2.501434) -> (-5.461, 3.81)
extrude "Extrusion37" add sketch "Sketch40 outline for Extrusion37" along normal blind 1.27
sketch "Sketch41" plane through (-10.16, 1.27, 10.16) normal (0, 1, 0) x (1, 0, 0)
  line L0 (0, -2.54) -> (0, 8.425415)
  line L1 (7.62, 13.97) -> (7.62, 12.7)
  line L2 (0, 8.425415) -> (7.62, 8.425415)
  line L3 (7.62, 8.425415) -> (7.62, 13.97)
  line L4 (7.62, 13.97) -> (0, 13.97)
  line L5 (0, 13.97) -> (0, 8.425415)
  point P0 (10.16, 10.16)
sketch "Sketch41 outline for Extrusion38" plane through (-10.16, 1.27, 10.16) normal (0, 1, 0) x (1, 0, 0)
  line L0 (0, 8.425415) -> (7.62, 8.425415)
  line L1 (0, 13.97) -> (0, 8.425415)
  line L2 (7.62, 13.97) -> (0, 13.97)
  line L3 (7.62, 12.7) -> (7.62, 13.97)
  line L4 (7.62, 8.425415) -> (7.62, 12.7)
extrude "Extrusion38" add sketch "Sketch41 outline for Extrusion38" along normal blind 1.27
sketch "Sketch42" plane through (-10.16, 1.27, 10.16) normal (0, 1, 0) x (1, 0, 0)
  line L0 (0, 8.425415) -> (7.62, 8.425415)
  line L1 (7.62, 8.425415) -> (7.62, -2.54)
  line L2 (0, 8.425415) -> (7.62, 8.425415)
  line L3 (7.62, 8.425415) -> (7.62, 7.530789)
  line L4 (7.62, 7.530789) -> (0, 7.530789)
  line L5 (0, 7.530789) -> (0, 8.425415)
  point P0 (10.16, 10.16)
sketch "Sketch42 outline for Extrusion39" plane through (-10.16, 1.27, 10.16) normal (0, 1, 0) x (1, 0, 0)
  line L0 (0, 8.425415) -> (0, 7.530789)
  line L1 (7.62, 8.425415) -> (0, 8.425415)
  line L2 (7.62, 7.530789) -> (7.62, 8.425415)
  line L3 (0, 7.530789) -> (7.62, 7.530789)
extrude "Extrusion39" add sketch "Sketch42 outline for Extrusion39" along normal blind 1.27
sketch "Sketch43" plane through (-10.16, 1.27, 10.16) normal (0, 1, 0) x (1, 0, 0)
  circle A0 centre (1.905, 6.35) radius 1.016
  circle A1 centre (5.715, 6.35) radius 1.016
  line L0 (7.62, 7.530789) -> (0, 7.530789)
  line L1 (0, 7.530789) -> (0, -2.54)
  line L2 (7.62, -2.54) -> (0, -2.54)
  line L3 (7.62, 7.530789) -> (7.62, -2.54)
  point P0 (10.16, 10.16)
sketch "Sketch43 outline for Extrusion40" plane through (-10.16, 1.27, 10.16) normal (0, 1, 0) x (1, 0, 0)
  line L0 (7.62, -2.54) -> (7.62, 7.530789)
  line L1 (0, -2.54) -> (7.62, -2.54)
  line L2 (7.62, 7.530789) -> (0, 7.530789)
  line L3 (0, 7.530789) -> (0, -2.54)
  circle A0 centre (1.905, 6.35) radius 1.016
  circle A1 centre (5.715, 6.35) radius 1.016
extrude "Extrusion40" add sketch "Sketch43 outline for Extrusion40" along normal blind 1.27
sketch "Sketch44" plane through (1.016, 0, -25.4) normal (1, 0, 0) x (0, 0, -1)
  line L0 (0, 12.7) -> (-17.78, 12.7) projected
  line L1 (-17.78, 12.7) -> (-17.78, 7.62) projected
  line L2 (0, 12.7) -> (-17.78, 12.7)
  line L3 (-17.78, 12.7) -> (-17.78, 10.16)
  line L4 (-17.78, 10.16) -> (0, 10.16)
  line L5 (0, 10.16) -> (0, 12.7)
  point P0 (-25.4, 0)
sketch "Sketch44 outline for Extrusion41" plane through (1.016, 0, -25.4) normal (1, 0, 0) x (0, 0, -1)
  line L0 (0, 10.16) -> (0, 12.7)
  line L1 (-17.78, 10.16) -> (0, 10.16)
  line L2 (-17.78, 12.7) -> (-17.78, 10.16)
  line L3 (0, 12.7) -> (-17.78, 12.7)
extrude "Extrusion41" cut sketch "Sketch44 outline for Extrusion41" against normal blind 2540
sketch "Sketch45" plane through (1.016, 0, -25.4) normal (1, 0, 0) x (0, 0, -1)
  line L0 (0, 10.16) -> (-17.78, 10.16) projected
  line L1 (-17.78, 7.62) -> (-17.78, 10.16) projected
  line L2 (-22.86, 2.54) -> (-17.78, 7.62) projected
  line L3 (-22.86, 0) -> (-22.86, 2.54) projected
  line L4 (0, 0) -> (-22.86, 0) projected
  line L5 (0, 10.16) -> (0, 0) projected
  point P0 (-25.4, 0)
sketch "Sketch45 outline for Extrusion42" plane through (1.016, 0, -25.4) normal (1, 0, 0) x (0, 0, -1)
  line L0 (0, 0) -> (0, 10.16)
  line L1 (-22.86, 0) -> (0, 0)
  line L2 (-22.86, 2.54) -> (-22.86, 0)
  line L3 (-17.78, 7.62) -> (-22.86, 2.54)
  line L4 (-17.78, 10.16) -> (-17.78, 7.62)
  line L5 (0, 10.16) -> (-17.78, 10.16)
extrude "Extrusion42" cut sketch "Sketch45 outline for Extrusion42" against normal blind 0.762
sketch "Sketch46" plane through (-13.716, 0, -25.4) normal (-1, 0, 0) x (0, 0, 1)
  line L0 (17.78, 10.16) -> (0, 10.16) projected
  line L1 (0, 0) -> (0, 10.16) projected
  line L2 (22.86, 0) -> (0, 0) projected
  line L3 (22.86, 2.54) -> (22.86, 0) projected
  line L4 (17.78, 7.62) -> (22.86, 2.54) projected
  line L5 (17.78, 10.16) -> (17.78, 7.62) projected
  point P0 (25.4, 0)
sketch "Sketch46 outline for Extrusion43" plane through (-13.716, 0, -25.4) normal (-1, 0, 0) x (0, 0, 1)
  line L0 (17.78, 7.62) -> (17.78, 10.16)
  line L1 (22.86, 2.54) -> (17.78, 7.62)
  line L2 (22.86, 0) -> (22.86, 2.54)
  line L3 (0, 0) -> (22.86, 0)
  line L4 (0, 10.16) -> (0, 0)
  line L5 (17.78, 10.16) -> (0, 10.16)
extrude "Extrusion43" cut sketch "Sketch46 outline for Extrusion43" against normal blind 0.762
sketch "Sketch47" plane through (-2.54, 0, 1.734585) normal (1, 0, 0) x (0, 0, -1)
  line L0 (-2.422442, -1.27) -> (-10.965415, -1.27)
  line L1 (-10.965415, -1.27) -> (-3.091415, 2.54)
  line L2 (-3.091415, -1.27) -> (-3.091415, 2.54)
  line L3 (-10.965415, 2.54) -> (4.274585, 2.54)
  line L4 (-10.965415, 2.54) -> (-3.091415, 2.54)
  line L5 (-3.091415, 2.54) -> (-3.091415, -2.54)
  line L6 (-3.091415, -2.54) -> (-10.965415, -2.54)
  line L7 (-10.965415, -2.54) -> (-10.965415, 2.54)
  point P0 (1.734585, 0)
sketch "Sketch47 outline for Extrusion44" plane through (-2.54, 0, 1.734585) normal (1, 0, 0) x (0, 0, -1)
  line L0 (-10.965415, 2.54) -> (-10.965415, -1.27)
  line L1 (-3.091415, 2.54) -> (-10.965415, 2.54)
  line L2 (-10.965415, -1.27) -> (-3.091415, 2.54)
extrude "Extrusion44" cut sketch "Sketch47 outline for Extrusion44" against normal blind 25.4
sketch "Sketch49" plane through (0, -1.27, 0) normal (0, -1, 0) x (1, 0, 0)
  line L0 (-8.255, 4.826) -> (-4.445, 4.826)
  line L1 (-2.54, 1.734585) -> (-2.54, 12.7)
  line L2 (-5.498457, 4.826) -> (-2.54, 4.826)
  line L3 (-2.54, 4.826) -> (-2.54, 6.096)
  line L4 (-2.54, 6.096) -> (-5.498457, 6.096)
  line L5 (-5.498457, 6.096) -> (-5.498457, 4.826)
  point P0 (0, 0)
  dimension "d123" = 1.27
sketch "Sketch49 outline for Extrusion46" plane through (0, -1.27, 0) normal (0, -1, 0) x (1, 0, 0)
  line L0 (-5.498457, 6.096) -> (-5.498457, 4.826)
  line L1 (-2.54, 6.096) -> (-5.498457, 6.096)
  line L2 (-2.54, 4.826) -> (-2.54, 6.096)
  line L3 (-4.445, 4.826) -> (-2.54, 4.826)
  line L4 (-5.498457, 4.826) -> (-4.445, 4.826)
extrude "Extrusion46" add sketch "Sketch49 outline for Extrusion46" along normal blind 1.27
sketch "Sketch50" plane through (-5.462315, -1.27, 6.096) normal (0, 0, 1) x (1, 0, 0)
  line L0 (0, 0) -> (2.032, 0)
  line L1 (2.032, 0) -> (2.032, -0.762)
  line L2 (2.032, -0.762) -> (0, -0.762)
  line L3 (0, -0.762) -> (0, 0)
  point P0 (5.462315, 1.27)
  dimension "d126" = 2.032
  dimension "d127" = 0.762
sketch "Sketch50 outline for Extrusion47" plane through (-5.462315, -1.27, 6.096) normal (0, 0, 1) x (1, 0, 0)
  line L0 (0, 0) -> (0, -0.762)
  line L1 (2.032, 0) -> (0, 0)
  line L2 (2.032, -0.762) -> (2.032, 0)
  line L3 (0, -0.762) -> (2.032, -0.762)
extrude "Extrusion47" cut sketch "Sketch50 outline for Extrusion47" against normal blind 1.27
sketch "Sketch51" plane through (0, -1.27, 0) normal (0, -1, 0) x (1, 0, 0)
  circle A0 centre (-8.255, 10.23115) radius 1.016
  point P0 (0, 0)
  dimension "d130" = 2.032
sketch "Sketch51 outline for Extrusion48" plane through (0, -1.27, 0) normal (0, -1, 0) x (1, 0, 0)
  circle A0 centre (-8.255, 10.23115) radius 1.016
extrude "Extrusion48" cut sketch "Sketch51 outline for Extrusion48" against normal blind 25.4
sketch "Sketch52" plane through (-6.35, 2.54, -20.32) normal (0, -1, 0) x (1, 0, 0)
  circle A0 centre (0, 0) radius 4.445 projected
  circle A1 centre (0, 0) radius 4.445
  point P0 (6.35, 20.32)
sketch "Sketch52 outline for Extrusion49" plane through (-6.35, 2.54, -20.32) normal (0, -1, 0) x (1, 0, 0)
  circle A0 centre (0, 0) radius 4.445
extrude "Extrusion49" cut sketch "Sketch52 outline for Extrusion49" against normal blind 1.27
sketch "Sketch53" plane through (-6.35, 3.81, -8.89) normal (0, -1, 0) x (1, 0, 0)
  circle A0 centre (0, 0) radius 4.445 projected
  circle A1 centre (0, 0) radius 1.905
  circle A2 centre (0, -11.43) radius 4.445 projected
  circle A3 centre (0, -11.43) radius 1.905
  point P0 (6.35, 8.89)
  dimension "d135" = 3.81
  dimension "d136" = 3.81
sketch "Sketch53 outline for Extrusion50" plane through (-6.35, 3.81, -8.89) normal (0, -1, 0) x (1, 0, 0)
  circle A0 centre (0, 0) radius 1.905
  circle A1 centre (0, -11.43) radius 1.905
extrude "Extrusion50" cut sketch "Sketch53 outline for Extrusion50" against normal blind 25.4
sketch "Sketch54" plane through (0.254, 0, -25.4) normal (1, 0, 0) x (0, 0, -1)
  line L0 (0, 10.16) -> (-17.78, 10.16)
  line L1 (0, 10.16) -> (-31.24915, 10.16)
  line L2 (-31.24915, 10.16) -> (-31.24915, 5.08)
  line L3 (-31.24915, 5.08) -> (0, 5.08)
  line L4 (0, 5.08) -> (0, 10.16)
  point P0 (-25.4, 0)
  dimension "d139" = 5.08
sketch "Sketch54 outline for Extrusion51" plane through (0.254, 0, -25.4) normal (1, 0, 0) x (0, 0, -1)
  line L0 (0, 5.08) -> (0, 10.16)
  line L1 (-31.24915, 5.08) -> (0, 5.08)
  line L2 (-31.24915, 10.16) -> (-31.24915, 5.08)
  line L3 (-17.78, 10.16) -> (-31.24915, 10.16)
  line L4 (0, 10.16) -> (-17.78, 10.16)
extrude "Extrusion51" cut sketch "Sketch54 outline for Extrusion51" against normal blind 25.4
sketch "Sketch55" plane through (0, -1.27, 0) normal (0, -1, 0) x (1, 0, 0)
  line L0 (-2.54, 4.826) -> (-2.54, -2.54)
  line L1 (-2.54, 4.826) -> (-3.429, 4.826)
  line L2 (-3.429, 4.826) -> (-3.429, 2.501434)
  line L3 (-3.429, 2.501434) -> (-2.54, 2.501434)
  line L4 (-2.54, 2.501434) -> (-2.54, 4.826)
  line L5 (-10.16, 1.734585) -> (-2.54, 1.734585)
  line L6 (-2.54, 1.734585) -> (-2.54, 2.501434)
  line L7 (-2.54, 2.501434) -> (-10.16, 2.501434)
  line L8 (-10.16, 2.501434) -> (-10.16, 1.734585)
  line L9 (-7.300103, 12.7) -> (-10.16, 12.7)
  line L10 (-10.16, 2.501434) -> (-9.295399, 2.501434)
  line L11 (-9.295399, 2.501434) -> (-9.295399, 12.7)
  line L12 (-9.295399, 12.7) -> (-10.16, 12.7)
  line L13 (-10.16, 12.7) -> (-10.16, 2.501434)
  point P0 (0, 0)
  dimension "d142" = 0.8646
  dimension "d143" = 0.889
sketch "Sketch55 outline for Extrusion52" plane through (0, -1.27, 0) normal (0, -1, 0) x (1, 0, 0)
  line L0 (-10.16, 12.7) -> (-10.16, 2.501434)
  line L1 (-9.295399, 12.7) -> (-10.16, 12.7)
  line L2 (-9.295399, 2.501434) -> (-9.295399, 12.7)
  line L3 (-3.429, 2.501434) -> (-9.295399, 2.501434)
  line L4 (-3.429, 4.826) -> (-3.429, 2.501434)
  line L5 (-2.54, 4.826) -> (-3.429, 4.826)
  line L6 (-2.54, 1.734585) -> (-2.54, 4.826)
  line L7 (-10.16, 1.734585) -> (-2.54, 1.734585)
  line L8 (-10.16, 2.501434) -> (-10.16, 1.734585)
extrude "Extrusion52" add sketch "Sketch55 outline for Extrusion52" along normal blind 1.27
sketch "Sketch56" plane through (-3.430315, -2.032, 4.826) normal (0, 0, -1) x (-1, 0, 0)
  line L0 (2.032, -0.508) -> (-0.001315, -0.508)
  line L1 (0, 0) -> (0, 0.762)
  line L2 (-0.001315, -0.508) -> (0, -0.508)
  line L3 (0, -0.508) -> (0, 0)
  line L4 (0, 0) -> (-0.001315, 0)
  line L5 (-0.001315, 0) -> (-0.001315, -0.508)
  line L6 (2.032, 0) -> (0, 0)
  line L7 (2.032, 0) -> (0, 0)
  line L8 (0, 0) -> (0, -0.508)
  line L9 (0, -0.508) -> (2.032, -0.508)
  line L10 (2.032, -0.508) -> (2.032, 0)
  point P0 (-3.430315, 2.032)
sketch "Sketch56 outline for Extrusion53" plane through (-3.430315, -2.032, 4.826) normal (0, 0, -1) x (-1, 0, 0)
  line L0 (2.032, -0.508) -> (2.032, 0)
  line L1 (0, -0.508) -> (2.032, -0.508)
  line L2 (0, 0) -> (0, -0.508)
  line L3 (2.032, 0) -> (0, 0)
extrude "Extrusion53" add sketch "Sketch56 outline for Extrusion53" along normal blind 2.54
sketch "Sketch57" plane through (-5.462315, -2.54, 6.096) normal (0, 0, 1) x (1, 0, 0)
  line L0 (2.922315, 0) -> (0, 0)
  line L1 (2.032, 1.27) -> (2.922315, 1.27)
  line L2 (2.922315, 1.27) -> (2.922315, 0)
  line L3 (2.922315, 0) -> (2.032, 0)
  line L4 (2.032, 0) -> (2.032, 1.27)
  line L5 (2.032, 0.508) -> (0, 0.508)
  line L6 (0.001315, 0) -> (2.032, 0)
  line L7 (2.032, 0) -> (2.032, 0.508)
  line L8 (2.032, 0.508) -> (0.001315, 0.508)
  line L9 (0.001315, 0.508) -> (0.001315, 0)
  point P0 (5.462315, 2.54)
sketch "Sketch57 outline for Extrusion54" plane through (-5.462315, -2.54, 6.096) normal (0, 0, 1) x (1, 0, 0)
  line L0 (2.922315, 0) -> (2.922315, 1.27)
  line L1 (0.001315, 0) -> (2.922315, 0)
  line L2 (0.001315, 0.508) -> (0.001315, 0)
  line L3 (2.032, 0.508) -> (0.001315, 0.508)
  line L4 (2.032, 1.27) -> (2.032, 0.508)
  line L5 (2.922315, 1.27) -> (2.032, 1.27)
extrude "Extrusion54" add sketch "Sketch57 outline for Extrusion54" along normal blind 3.556
sketch "Sketch59" plane through (0, -2.54, 0) normal (0, -1, 0) x (1, 0, 0)
  line L0 (-5.461, 2.501434) -> (-3.429, 2.501434)
  line L1 (-3.430315, 9.652) -> (-5.461, 9.652)
  line L2 (-4.572, 2.501434) -> (-4.064, 2.501434)
  line L3 (-4.064, 2.501434) -> (-4.064, 9.652)
  line L4 (-4.064, 9.652) -> (-4.572, 9.652)
  line L5 (-4.572, 9.652) -> (-4.572, 2.501434)
  line L6 (-2.54, 1.734585) -> (-2.54, 9.652)
  point P0 (0, 0)
  dimension "d153" = 0.508
  dimension "d154" = 1.524
sketch "Sketch59 outline for Extrusion56" plane through (0, -2.54, 0) normal (0, -1, 0) x (1, 0, 0)
  line L0 (-4.572, 9.652) -> (-4.572, 2.501434)
  line L1 (-4.064, 9.652) -> (-4.572, 9.652)
  line L2 (-4.064, 2.501434) -> (-4.064, 9.652)
  line L3 (-4.572, 2.501434) -> (-4.064, 2.501434)
extrude "Extrusion56" cut sketch "Sketch59 outline for Extrusion56" against normal blind 0.508
properties part number "electrodeholder_screwon_4"
